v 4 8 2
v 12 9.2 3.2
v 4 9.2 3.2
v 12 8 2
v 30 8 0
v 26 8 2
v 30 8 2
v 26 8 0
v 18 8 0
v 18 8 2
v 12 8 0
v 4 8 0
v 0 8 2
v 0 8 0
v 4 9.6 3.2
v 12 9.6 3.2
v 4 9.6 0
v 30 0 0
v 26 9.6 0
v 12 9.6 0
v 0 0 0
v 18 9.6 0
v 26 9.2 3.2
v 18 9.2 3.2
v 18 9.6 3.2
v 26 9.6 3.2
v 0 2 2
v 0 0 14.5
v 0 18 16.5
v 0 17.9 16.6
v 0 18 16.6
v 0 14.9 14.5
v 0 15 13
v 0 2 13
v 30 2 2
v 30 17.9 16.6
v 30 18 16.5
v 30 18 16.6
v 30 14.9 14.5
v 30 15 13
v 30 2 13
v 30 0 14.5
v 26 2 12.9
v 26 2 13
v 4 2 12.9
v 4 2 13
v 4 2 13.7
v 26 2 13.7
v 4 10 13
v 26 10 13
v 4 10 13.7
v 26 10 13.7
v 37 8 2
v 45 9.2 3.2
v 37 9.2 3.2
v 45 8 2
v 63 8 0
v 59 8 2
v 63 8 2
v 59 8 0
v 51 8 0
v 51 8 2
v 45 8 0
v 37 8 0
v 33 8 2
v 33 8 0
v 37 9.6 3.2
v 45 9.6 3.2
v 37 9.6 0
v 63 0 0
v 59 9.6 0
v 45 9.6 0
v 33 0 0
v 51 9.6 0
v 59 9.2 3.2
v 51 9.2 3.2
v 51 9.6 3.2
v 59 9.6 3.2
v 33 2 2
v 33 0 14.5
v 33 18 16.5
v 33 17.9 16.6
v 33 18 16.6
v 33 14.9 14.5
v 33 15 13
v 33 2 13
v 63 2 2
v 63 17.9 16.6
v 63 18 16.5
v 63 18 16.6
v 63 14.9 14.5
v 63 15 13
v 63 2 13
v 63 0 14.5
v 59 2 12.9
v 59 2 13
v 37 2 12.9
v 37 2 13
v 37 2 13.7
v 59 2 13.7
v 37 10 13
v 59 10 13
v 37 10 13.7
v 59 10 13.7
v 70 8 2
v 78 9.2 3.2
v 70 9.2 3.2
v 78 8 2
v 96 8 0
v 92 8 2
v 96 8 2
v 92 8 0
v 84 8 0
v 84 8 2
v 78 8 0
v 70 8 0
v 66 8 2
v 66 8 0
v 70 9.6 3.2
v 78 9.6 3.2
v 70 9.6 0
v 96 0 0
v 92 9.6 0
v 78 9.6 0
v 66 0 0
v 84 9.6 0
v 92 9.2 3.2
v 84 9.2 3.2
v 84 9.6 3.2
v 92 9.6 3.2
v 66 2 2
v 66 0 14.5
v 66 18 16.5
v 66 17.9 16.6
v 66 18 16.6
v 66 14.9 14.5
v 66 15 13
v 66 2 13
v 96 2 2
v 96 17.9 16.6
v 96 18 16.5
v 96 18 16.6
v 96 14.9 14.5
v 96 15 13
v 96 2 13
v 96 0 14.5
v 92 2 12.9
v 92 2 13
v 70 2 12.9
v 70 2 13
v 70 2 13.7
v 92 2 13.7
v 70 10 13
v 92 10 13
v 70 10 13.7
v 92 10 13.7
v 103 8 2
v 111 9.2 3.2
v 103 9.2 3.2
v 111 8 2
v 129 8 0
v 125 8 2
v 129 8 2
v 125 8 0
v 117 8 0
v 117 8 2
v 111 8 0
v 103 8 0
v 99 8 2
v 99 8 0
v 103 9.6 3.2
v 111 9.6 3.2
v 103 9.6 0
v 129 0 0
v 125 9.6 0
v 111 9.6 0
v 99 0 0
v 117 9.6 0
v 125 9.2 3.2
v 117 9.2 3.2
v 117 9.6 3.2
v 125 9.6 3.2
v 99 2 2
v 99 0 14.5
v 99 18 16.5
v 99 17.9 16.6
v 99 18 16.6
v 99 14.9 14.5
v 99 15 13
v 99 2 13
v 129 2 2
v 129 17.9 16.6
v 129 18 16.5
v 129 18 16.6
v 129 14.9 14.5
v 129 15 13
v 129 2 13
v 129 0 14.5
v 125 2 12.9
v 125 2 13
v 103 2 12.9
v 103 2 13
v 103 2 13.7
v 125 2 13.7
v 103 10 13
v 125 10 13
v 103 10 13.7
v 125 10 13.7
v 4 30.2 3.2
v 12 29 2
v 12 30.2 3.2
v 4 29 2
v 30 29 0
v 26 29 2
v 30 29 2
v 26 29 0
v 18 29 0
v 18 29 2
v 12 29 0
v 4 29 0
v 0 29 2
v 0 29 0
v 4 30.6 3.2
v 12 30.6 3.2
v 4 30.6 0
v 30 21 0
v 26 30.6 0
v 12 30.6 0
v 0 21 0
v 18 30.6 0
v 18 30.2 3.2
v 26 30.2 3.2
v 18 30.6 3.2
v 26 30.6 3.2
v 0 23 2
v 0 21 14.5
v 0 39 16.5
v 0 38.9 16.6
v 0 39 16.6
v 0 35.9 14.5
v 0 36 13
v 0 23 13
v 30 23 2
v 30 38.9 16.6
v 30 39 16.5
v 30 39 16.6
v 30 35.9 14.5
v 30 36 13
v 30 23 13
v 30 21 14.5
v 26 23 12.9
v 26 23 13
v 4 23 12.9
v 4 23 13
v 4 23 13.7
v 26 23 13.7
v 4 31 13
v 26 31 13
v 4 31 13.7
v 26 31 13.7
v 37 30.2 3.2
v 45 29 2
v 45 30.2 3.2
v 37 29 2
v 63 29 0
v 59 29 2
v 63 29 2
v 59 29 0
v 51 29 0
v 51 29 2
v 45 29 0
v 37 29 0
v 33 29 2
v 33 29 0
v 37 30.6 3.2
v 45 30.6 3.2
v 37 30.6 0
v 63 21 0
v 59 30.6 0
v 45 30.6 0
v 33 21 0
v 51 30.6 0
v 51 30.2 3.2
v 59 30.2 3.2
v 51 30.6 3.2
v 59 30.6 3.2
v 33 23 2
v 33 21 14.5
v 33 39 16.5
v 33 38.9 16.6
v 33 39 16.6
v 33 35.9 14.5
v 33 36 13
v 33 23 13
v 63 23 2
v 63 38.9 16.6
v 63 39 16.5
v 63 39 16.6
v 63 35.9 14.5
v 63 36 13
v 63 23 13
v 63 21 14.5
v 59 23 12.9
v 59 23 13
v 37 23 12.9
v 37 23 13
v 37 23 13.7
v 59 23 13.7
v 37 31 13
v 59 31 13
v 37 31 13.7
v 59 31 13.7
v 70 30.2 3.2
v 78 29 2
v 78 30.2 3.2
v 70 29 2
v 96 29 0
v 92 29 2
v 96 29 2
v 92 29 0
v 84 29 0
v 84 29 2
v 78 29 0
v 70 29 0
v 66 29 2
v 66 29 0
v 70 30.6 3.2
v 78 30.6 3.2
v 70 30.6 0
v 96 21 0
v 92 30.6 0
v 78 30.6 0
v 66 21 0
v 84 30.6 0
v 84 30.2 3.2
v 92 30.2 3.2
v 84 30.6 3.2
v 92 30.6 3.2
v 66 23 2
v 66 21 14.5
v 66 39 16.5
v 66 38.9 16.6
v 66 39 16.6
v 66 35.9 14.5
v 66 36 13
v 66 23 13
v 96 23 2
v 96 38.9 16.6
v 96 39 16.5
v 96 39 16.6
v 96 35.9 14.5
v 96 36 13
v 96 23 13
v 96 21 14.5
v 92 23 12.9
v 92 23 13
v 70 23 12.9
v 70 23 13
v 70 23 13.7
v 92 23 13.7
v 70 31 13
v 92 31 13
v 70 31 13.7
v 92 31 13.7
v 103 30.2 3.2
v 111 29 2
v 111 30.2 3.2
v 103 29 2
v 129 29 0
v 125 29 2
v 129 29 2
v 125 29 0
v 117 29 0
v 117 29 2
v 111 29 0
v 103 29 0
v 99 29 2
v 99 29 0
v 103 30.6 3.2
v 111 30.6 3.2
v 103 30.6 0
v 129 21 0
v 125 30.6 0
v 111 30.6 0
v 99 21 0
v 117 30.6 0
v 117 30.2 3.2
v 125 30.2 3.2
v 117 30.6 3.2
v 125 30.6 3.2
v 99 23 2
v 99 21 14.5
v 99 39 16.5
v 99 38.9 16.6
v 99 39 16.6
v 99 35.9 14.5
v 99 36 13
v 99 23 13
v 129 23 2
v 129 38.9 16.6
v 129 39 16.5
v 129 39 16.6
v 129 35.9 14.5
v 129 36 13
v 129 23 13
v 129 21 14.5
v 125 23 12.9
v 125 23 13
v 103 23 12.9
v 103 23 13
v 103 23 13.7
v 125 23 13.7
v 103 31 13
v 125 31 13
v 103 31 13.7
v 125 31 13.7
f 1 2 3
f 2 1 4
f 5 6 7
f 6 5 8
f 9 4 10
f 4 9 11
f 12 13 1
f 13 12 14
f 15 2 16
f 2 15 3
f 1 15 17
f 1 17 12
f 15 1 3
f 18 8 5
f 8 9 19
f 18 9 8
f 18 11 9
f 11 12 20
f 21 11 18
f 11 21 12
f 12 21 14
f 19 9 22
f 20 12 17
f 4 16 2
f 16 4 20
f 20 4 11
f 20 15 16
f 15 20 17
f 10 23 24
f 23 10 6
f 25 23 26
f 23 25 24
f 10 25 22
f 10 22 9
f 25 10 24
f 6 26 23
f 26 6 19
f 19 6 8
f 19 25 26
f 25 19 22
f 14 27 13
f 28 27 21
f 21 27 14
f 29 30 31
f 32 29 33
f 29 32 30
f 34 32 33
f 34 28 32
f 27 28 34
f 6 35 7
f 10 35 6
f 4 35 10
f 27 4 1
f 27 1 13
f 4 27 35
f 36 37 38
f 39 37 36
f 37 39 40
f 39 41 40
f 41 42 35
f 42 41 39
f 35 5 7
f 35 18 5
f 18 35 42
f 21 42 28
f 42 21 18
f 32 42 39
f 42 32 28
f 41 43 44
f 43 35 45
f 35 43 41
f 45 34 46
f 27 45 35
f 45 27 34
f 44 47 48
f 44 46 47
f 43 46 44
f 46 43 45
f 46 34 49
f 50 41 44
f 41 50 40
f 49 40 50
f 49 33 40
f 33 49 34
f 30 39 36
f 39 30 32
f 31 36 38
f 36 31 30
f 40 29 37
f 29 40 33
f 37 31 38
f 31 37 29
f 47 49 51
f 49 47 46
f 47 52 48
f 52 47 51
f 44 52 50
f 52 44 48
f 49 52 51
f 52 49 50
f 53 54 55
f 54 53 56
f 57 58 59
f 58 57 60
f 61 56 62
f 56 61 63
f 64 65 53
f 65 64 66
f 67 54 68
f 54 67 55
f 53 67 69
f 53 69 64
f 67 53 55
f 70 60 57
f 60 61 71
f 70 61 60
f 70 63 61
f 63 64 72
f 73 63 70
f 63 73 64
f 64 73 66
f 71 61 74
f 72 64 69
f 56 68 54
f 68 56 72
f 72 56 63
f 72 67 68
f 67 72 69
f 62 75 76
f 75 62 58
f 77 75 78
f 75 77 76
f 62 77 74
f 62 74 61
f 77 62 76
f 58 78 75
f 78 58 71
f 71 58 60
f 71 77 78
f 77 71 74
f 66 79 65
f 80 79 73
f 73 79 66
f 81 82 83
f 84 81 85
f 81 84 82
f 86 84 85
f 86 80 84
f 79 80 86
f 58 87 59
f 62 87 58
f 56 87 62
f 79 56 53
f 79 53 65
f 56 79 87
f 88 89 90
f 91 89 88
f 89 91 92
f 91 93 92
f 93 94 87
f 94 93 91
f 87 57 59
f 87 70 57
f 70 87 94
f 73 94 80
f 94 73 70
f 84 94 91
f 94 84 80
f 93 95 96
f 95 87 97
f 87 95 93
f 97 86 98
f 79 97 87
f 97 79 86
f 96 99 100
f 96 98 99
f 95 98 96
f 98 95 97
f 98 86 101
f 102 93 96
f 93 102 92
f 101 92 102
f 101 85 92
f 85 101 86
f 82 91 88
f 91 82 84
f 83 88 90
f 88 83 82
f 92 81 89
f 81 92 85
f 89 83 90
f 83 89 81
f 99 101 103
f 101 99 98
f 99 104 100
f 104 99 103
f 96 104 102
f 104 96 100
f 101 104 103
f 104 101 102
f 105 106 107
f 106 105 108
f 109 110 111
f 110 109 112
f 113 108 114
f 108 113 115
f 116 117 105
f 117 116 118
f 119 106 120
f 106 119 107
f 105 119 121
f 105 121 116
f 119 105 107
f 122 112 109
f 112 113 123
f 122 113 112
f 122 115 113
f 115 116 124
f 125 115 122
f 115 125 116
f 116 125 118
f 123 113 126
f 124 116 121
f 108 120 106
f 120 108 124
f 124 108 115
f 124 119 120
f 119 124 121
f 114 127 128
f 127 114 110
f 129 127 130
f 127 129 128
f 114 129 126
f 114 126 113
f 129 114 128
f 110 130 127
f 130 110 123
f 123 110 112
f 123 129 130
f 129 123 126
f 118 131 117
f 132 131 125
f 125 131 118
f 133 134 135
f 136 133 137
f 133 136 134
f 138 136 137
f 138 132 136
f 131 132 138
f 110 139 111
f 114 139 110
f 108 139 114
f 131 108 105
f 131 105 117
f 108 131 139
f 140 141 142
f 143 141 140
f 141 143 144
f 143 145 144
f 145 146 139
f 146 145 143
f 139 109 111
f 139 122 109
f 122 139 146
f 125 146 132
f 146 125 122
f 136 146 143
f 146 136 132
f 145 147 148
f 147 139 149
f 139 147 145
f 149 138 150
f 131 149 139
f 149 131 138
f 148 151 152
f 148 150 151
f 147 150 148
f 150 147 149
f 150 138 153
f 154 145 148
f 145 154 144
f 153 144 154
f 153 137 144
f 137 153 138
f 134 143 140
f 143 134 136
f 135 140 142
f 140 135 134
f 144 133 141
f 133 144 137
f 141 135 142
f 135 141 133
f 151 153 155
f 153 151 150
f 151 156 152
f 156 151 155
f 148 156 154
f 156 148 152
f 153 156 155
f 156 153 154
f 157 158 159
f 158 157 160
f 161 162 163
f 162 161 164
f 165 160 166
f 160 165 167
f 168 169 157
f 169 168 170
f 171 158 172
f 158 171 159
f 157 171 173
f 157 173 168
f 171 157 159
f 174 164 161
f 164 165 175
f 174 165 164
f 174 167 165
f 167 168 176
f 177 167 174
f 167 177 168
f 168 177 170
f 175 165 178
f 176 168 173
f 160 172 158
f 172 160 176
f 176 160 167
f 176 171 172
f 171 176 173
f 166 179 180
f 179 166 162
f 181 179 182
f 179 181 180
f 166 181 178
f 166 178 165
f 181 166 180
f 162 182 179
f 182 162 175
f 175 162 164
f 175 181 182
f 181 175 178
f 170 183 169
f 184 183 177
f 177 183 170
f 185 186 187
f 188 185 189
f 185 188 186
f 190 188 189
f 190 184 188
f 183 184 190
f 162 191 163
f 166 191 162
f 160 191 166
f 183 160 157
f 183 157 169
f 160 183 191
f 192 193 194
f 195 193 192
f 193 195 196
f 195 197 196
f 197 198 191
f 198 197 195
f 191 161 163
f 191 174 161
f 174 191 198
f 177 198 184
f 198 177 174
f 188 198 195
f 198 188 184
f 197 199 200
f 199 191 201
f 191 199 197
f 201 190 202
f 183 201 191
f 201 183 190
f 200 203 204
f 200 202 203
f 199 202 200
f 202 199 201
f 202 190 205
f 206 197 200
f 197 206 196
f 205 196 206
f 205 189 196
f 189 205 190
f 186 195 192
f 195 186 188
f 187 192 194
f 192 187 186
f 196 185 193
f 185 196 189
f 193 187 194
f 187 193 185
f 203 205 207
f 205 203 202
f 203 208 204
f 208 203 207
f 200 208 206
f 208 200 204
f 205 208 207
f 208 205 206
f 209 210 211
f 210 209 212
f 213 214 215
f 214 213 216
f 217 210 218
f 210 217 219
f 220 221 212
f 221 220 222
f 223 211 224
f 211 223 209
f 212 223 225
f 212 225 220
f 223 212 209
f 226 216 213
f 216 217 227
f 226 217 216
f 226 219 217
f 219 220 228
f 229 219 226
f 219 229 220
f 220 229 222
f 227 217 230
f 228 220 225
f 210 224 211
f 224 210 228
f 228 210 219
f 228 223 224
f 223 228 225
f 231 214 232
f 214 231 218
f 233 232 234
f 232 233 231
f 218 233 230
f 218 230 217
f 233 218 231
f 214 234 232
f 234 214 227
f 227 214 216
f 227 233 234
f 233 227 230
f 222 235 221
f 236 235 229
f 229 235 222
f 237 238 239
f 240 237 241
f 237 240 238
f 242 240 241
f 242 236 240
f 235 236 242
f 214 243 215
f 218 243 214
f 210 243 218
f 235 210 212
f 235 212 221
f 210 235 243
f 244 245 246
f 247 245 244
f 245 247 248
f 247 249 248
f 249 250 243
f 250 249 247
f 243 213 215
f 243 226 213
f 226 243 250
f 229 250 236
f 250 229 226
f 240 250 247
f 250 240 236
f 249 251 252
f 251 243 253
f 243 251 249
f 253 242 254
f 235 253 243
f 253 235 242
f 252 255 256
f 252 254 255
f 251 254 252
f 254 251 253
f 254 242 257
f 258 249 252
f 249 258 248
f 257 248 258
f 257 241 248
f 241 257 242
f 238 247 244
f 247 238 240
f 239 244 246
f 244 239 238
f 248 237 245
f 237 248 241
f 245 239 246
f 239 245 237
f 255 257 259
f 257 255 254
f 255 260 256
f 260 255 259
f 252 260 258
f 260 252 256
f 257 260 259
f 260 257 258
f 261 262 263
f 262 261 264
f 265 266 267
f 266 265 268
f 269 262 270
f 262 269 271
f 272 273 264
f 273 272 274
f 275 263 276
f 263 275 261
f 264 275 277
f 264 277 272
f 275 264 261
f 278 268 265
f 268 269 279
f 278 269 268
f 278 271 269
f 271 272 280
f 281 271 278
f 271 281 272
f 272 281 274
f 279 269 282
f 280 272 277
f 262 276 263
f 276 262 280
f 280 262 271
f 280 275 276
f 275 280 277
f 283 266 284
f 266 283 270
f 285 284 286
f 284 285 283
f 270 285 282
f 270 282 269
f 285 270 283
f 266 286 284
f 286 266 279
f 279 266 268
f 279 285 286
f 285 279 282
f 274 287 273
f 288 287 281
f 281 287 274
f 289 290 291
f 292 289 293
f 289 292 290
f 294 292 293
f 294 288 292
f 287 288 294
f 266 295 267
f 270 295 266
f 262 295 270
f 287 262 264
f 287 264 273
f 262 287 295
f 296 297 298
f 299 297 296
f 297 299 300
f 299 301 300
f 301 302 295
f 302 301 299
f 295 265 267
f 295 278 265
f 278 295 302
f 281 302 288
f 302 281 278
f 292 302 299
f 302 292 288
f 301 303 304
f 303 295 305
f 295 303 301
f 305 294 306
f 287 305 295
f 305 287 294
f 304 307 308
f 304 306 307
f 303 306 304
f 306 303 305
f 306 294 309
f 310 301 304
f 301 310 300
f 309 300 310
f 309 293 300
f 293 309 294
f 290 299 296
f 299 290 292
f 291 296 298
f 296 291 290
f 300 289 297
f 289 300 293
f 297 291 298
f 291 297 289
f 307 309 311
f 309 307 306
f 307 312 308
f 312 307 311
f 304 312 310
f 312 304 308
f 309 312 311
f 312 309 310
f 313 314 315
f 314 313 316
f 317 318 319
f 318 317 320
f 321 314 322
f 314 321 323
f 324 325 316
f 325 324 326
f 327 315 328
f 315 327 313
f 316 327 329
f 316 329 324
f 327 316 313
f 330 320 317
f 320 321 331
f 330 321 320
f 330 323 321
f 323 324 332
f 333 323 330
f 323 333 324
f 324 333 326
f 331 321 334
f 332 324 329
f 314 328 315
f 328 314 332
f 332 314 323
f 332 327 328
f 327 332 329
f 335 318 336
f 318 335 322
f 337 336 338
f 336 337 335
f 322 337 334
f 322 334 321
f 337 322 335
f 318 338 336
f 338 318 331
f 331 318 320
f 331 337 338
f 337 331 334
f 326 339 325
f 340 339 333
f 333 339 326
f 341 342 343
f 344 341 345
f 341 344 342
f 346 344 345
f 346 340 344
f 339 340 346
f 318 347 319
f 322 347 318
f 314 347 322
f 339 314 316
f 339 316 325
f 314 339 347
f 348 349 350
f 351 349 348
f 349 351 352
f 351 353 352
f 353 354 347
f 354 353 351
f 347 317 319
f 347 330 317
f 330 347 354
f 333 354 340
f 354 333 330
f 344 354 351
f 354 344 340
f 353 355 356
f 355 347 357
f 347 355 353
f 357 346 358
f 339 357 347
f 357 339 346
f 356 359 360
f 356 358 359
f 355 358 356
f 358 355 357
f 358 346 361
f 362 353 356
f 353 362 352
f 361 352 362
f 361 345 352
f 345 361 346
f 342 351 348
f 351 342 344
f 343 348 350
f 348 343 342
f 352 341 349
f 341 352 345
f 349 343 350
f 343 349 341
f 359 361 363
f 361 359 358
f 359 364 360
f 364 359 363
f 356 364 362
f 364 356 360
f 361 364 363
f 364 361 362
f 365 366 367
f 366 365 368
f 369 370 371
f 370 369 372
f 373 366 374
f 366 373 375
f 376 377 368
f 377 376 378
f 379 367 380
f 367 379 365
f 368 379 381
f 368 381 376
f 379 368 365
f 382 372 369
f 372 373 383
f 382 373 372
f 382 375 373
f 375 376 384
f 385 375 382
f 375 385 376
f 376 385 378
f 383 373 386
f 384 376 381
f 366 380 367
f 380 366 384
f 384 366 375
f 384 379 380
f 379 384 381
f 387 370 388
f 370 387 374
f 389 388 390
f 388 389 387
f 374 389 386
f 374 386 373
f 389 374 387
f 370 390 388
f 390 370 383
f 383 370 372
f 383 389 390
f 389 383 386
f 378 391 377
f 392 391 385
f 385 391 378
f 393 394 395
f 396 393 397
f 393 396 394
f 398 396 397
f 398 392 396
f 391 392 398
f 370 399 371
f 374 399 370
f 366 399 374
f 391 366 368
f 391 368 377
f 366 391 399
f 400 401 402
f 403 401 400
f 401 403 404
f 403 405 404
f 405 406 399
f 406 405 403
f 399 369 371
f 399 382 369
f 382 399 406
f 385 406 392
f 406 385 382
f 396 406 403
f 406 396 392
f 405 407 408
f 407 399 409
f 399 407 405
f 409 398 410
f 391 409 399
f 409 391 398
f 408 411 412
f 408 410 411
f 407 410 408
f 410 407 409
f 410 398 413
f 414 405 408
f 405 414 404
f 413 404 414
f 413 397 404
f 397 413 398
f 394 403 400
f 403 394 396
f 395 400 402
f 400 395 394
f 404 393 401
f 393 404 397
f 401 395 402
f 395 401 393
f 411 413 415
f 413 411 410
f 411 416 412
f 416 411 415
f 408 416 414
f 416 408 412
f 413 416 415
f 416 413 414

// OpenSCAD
// file: CLIP_MANTA_G3.scad
// ============================================================
// CLIP DE RETENÇÃO PARA MANTA G3
// Impressão 3D - PLA/PETG (Ender 3)
// ============================================================
//
// CONCEITO: Clips que prendem a manta G3 (10mm) na borda
// do furo 200×200mm do MDF da divisória.
//
// O clip abraça a borda do MDF (3mm) e tem uma aba que
// pressiona a manta contra o MDF. Para trocar a manta:
// aperta a lingueta flexível e puxa o clip.
//
// FIXAÇÃO: O clip tem 2 dentes snap-fit que passam por
// slots cortados no MDF na borda do furo.
//
// QUANTIDADE: 8 clips (2 por lado do furo)
//
// VISTA LATERAL (corte):
//
//   ┌── aba retenção (prensa manta) ──┐
//   │         manta G3 10mm           │
//   ╞═══MDF══[entalhe]════════════════╡  ← entalhe 30×2mm no MDF
//            │  base (sob o MDF)       │
//            └── dente ────── dente ───┘
//
// SEÇÃO DO CLIP:
//   Topo: aba 15mm sobre a manta (prensa para baixo)
//   Meio: parede (2mm) passa pelo entalhe na borda do furo
//   Base: 8mm por baixo do MDF com dentes snap-fit
//
// MONTAGEM:
//   1. Incline o clip pela abertura do furo
//   2. Deslize a base por baixo do MDF (área sólida)
//   3. A parede passa pelo entalhe 30×2mm na borda
//   4. Dentes clicam nos slots do MDF
//   5. Aba prensa a manta por cima
//
// ============================================================

// === PARÂMETROS ===
mdf = 3;            // Espessura MDF
folga = 0.3;        // Folga de encaixe
manta_esp = 10;     // Espessura da manta G3

// Clip
clip_larg = 30;     // Largura do clip ao longo da borda
clip_parede = 2;    // Espessura das paredes
aba_comp = 15;      // Comprimento da aba sobre a manta
aba_esp = 1.5;      // Espessura da aba (flexível, prensa a manta)
base_prof = 8;      // Profundidade da base por baixo do MDF

// Snap-fit
dente_h = 1.2;      // Altura do dente (entra no slot MDF)
dente_w = 8;        // Largura do dente
dente_pos1 = 7;     // Posição do dente 1 (distância do centro)
dente_pos2 = 7;     // Simétrico

// Slot no MDF (cortado CNC)
slot_w = 10;        // Largura do slot = dente_w + 2mm folga
slot_h = 2;         // Altura do slot = dente_h + folga
// 2 slots por clip, 8 clips = 16 slots no MDF

// Entalhe no MDF para parede do clip (CNC)
// Retângulo clip_larg × clip_parede na borda do furo
// 8 entalhes (1 por clip) — sem eles a parede colide com o MDF
entalhe_w    = clip_larg;   // 30mm (largura do clip)
entalhe_prof = clip_parede; // 2mm (espessura da parede)

// === MÓDULO PRINCIPAL ===
module clip_manta() {
    // O clip é orientado assim:
    // X = largura (30mm ao longo da borda)
    // Y = profundidade (base→aba)
    // Z = altura (de baixo do MDF para cima)
    //
    // Z=0 = face inferior do MDF
    // Z=mdf = face superior do MDF (onde a manta fica)
    // Z=mdf+manta_esp = topo da manta

    difference() {
        union() {
            // --- BASE (por baixo do MDF) ---
            // Placa que fica embaixo do MDF, segura o clip
            cube([clip_larg, base_prof, clip_parede]);
            
            // --- PAREDE VERTICAL (borda do furo) ---
            // Sobe pelo furo, abraçando a borda do MDF
            cube([clip_larg, clip_parede, mdf + manta_esp + aba_esp]);
            
            // --- ABA DE RETENÇÃO (sobre a manta) ---
            // Aba que prensa a manta contra o MDF
            // Posição: no topo da manta, avança sobre ela
            translate([0, 0, mdf + manta_esp])
                cube([clip_larg, aba_comp, aba_esp]);
            
            // --- RAMPA DE ENTRADA ---
            // Chanfro na ponta da aba para facilitar encaixe da manta
            translate([0, aba_comp - 0.1, mdf + manta_esp])
            hull() {
                cube([clip_larg, 0.1, aba_esp]);
                translate([0, 3, aba_esp + 2])
                    cube([clip_larg, 0.1, 0.1]);
            }
            
            // --- DENTES SNAP-FIT (2 por clip) ---
            // Sobem a partir da base para engatar nos slots do MDF
            translate([clip_larg/2 - dente_pos1 - dente_w/2, base_prof, 0])
                dente_snap();
            translate([clip_larg/2 + dente_pos2 - dente_w/2, base_prof, 0])
                dente_snap();
        }
        
        // --- CANAL de flexão na aba ---
        // Permite que a aba flexione para acomodar variação de espessura
        translate([clip_parede + 2, clip_parede, mdf + manta_esp - 0.1])
            cube([clip_larg - 2*clip_parede - 4, aba_comp - clip_parede - 5, 0.8]);
    }
}

// Dente snap-fit
module dente_snap() {
    // Rampa de entrada (facilita encaixe)
    hull() {
        cube([dente_w, 0.1, clip_parede]);
        translate([0, dente_h, 0])
            cube([dente_w, 0.1, clip_parede + dente_h]);
    }
    // Face de retenção (plana, trava no slot)
    translate([0, dente_h, 0])
        cube([dente_w, 0.4, clip_parede + dente_h]);
}

// === VISUALIZAÇÃO ===

// Clip orientado para impressão (base na mesa, Z=0)
clip_manta();

// MDF fantasma para referência visual
%translate([-5, -2, 0])
    cube([clip_larg + 10, base_prof + aba_comp + 10, mdf]);

// Manta fantasma
%translate([-5, -2, mdf])
    color("LimeGreen", 0.3)
        cube([clip_larg + 10, aba_comp + 10, manta_esp]);
// main file
// ============================================================
// PRINT: CLIPS MANTA G3 — 8 unidades
// Mesa: ~136mm × 33mm — cabe na Ender 3 (200×200mm) ✓
// Tempo estimado: ~45min
// Infill: 60% | Walls: 3 | Layer: 0.2mm
// ============================================================

use <CLIP_MANTA_G3.scad>

gap = 3;
clip_w = 30;

// 8 clips em 2 fileiras de 4
for (row = [0:1]) {
    for (col = [0:3]) {
        translate([col * (clip_w + gap), row * (18 + gap), 0])
            clip_manta();
    }
}

// Guia visual da mesa (não imprime)
%translate([0, 0, -0.5])
    cube([200, 200, 0.1]);
